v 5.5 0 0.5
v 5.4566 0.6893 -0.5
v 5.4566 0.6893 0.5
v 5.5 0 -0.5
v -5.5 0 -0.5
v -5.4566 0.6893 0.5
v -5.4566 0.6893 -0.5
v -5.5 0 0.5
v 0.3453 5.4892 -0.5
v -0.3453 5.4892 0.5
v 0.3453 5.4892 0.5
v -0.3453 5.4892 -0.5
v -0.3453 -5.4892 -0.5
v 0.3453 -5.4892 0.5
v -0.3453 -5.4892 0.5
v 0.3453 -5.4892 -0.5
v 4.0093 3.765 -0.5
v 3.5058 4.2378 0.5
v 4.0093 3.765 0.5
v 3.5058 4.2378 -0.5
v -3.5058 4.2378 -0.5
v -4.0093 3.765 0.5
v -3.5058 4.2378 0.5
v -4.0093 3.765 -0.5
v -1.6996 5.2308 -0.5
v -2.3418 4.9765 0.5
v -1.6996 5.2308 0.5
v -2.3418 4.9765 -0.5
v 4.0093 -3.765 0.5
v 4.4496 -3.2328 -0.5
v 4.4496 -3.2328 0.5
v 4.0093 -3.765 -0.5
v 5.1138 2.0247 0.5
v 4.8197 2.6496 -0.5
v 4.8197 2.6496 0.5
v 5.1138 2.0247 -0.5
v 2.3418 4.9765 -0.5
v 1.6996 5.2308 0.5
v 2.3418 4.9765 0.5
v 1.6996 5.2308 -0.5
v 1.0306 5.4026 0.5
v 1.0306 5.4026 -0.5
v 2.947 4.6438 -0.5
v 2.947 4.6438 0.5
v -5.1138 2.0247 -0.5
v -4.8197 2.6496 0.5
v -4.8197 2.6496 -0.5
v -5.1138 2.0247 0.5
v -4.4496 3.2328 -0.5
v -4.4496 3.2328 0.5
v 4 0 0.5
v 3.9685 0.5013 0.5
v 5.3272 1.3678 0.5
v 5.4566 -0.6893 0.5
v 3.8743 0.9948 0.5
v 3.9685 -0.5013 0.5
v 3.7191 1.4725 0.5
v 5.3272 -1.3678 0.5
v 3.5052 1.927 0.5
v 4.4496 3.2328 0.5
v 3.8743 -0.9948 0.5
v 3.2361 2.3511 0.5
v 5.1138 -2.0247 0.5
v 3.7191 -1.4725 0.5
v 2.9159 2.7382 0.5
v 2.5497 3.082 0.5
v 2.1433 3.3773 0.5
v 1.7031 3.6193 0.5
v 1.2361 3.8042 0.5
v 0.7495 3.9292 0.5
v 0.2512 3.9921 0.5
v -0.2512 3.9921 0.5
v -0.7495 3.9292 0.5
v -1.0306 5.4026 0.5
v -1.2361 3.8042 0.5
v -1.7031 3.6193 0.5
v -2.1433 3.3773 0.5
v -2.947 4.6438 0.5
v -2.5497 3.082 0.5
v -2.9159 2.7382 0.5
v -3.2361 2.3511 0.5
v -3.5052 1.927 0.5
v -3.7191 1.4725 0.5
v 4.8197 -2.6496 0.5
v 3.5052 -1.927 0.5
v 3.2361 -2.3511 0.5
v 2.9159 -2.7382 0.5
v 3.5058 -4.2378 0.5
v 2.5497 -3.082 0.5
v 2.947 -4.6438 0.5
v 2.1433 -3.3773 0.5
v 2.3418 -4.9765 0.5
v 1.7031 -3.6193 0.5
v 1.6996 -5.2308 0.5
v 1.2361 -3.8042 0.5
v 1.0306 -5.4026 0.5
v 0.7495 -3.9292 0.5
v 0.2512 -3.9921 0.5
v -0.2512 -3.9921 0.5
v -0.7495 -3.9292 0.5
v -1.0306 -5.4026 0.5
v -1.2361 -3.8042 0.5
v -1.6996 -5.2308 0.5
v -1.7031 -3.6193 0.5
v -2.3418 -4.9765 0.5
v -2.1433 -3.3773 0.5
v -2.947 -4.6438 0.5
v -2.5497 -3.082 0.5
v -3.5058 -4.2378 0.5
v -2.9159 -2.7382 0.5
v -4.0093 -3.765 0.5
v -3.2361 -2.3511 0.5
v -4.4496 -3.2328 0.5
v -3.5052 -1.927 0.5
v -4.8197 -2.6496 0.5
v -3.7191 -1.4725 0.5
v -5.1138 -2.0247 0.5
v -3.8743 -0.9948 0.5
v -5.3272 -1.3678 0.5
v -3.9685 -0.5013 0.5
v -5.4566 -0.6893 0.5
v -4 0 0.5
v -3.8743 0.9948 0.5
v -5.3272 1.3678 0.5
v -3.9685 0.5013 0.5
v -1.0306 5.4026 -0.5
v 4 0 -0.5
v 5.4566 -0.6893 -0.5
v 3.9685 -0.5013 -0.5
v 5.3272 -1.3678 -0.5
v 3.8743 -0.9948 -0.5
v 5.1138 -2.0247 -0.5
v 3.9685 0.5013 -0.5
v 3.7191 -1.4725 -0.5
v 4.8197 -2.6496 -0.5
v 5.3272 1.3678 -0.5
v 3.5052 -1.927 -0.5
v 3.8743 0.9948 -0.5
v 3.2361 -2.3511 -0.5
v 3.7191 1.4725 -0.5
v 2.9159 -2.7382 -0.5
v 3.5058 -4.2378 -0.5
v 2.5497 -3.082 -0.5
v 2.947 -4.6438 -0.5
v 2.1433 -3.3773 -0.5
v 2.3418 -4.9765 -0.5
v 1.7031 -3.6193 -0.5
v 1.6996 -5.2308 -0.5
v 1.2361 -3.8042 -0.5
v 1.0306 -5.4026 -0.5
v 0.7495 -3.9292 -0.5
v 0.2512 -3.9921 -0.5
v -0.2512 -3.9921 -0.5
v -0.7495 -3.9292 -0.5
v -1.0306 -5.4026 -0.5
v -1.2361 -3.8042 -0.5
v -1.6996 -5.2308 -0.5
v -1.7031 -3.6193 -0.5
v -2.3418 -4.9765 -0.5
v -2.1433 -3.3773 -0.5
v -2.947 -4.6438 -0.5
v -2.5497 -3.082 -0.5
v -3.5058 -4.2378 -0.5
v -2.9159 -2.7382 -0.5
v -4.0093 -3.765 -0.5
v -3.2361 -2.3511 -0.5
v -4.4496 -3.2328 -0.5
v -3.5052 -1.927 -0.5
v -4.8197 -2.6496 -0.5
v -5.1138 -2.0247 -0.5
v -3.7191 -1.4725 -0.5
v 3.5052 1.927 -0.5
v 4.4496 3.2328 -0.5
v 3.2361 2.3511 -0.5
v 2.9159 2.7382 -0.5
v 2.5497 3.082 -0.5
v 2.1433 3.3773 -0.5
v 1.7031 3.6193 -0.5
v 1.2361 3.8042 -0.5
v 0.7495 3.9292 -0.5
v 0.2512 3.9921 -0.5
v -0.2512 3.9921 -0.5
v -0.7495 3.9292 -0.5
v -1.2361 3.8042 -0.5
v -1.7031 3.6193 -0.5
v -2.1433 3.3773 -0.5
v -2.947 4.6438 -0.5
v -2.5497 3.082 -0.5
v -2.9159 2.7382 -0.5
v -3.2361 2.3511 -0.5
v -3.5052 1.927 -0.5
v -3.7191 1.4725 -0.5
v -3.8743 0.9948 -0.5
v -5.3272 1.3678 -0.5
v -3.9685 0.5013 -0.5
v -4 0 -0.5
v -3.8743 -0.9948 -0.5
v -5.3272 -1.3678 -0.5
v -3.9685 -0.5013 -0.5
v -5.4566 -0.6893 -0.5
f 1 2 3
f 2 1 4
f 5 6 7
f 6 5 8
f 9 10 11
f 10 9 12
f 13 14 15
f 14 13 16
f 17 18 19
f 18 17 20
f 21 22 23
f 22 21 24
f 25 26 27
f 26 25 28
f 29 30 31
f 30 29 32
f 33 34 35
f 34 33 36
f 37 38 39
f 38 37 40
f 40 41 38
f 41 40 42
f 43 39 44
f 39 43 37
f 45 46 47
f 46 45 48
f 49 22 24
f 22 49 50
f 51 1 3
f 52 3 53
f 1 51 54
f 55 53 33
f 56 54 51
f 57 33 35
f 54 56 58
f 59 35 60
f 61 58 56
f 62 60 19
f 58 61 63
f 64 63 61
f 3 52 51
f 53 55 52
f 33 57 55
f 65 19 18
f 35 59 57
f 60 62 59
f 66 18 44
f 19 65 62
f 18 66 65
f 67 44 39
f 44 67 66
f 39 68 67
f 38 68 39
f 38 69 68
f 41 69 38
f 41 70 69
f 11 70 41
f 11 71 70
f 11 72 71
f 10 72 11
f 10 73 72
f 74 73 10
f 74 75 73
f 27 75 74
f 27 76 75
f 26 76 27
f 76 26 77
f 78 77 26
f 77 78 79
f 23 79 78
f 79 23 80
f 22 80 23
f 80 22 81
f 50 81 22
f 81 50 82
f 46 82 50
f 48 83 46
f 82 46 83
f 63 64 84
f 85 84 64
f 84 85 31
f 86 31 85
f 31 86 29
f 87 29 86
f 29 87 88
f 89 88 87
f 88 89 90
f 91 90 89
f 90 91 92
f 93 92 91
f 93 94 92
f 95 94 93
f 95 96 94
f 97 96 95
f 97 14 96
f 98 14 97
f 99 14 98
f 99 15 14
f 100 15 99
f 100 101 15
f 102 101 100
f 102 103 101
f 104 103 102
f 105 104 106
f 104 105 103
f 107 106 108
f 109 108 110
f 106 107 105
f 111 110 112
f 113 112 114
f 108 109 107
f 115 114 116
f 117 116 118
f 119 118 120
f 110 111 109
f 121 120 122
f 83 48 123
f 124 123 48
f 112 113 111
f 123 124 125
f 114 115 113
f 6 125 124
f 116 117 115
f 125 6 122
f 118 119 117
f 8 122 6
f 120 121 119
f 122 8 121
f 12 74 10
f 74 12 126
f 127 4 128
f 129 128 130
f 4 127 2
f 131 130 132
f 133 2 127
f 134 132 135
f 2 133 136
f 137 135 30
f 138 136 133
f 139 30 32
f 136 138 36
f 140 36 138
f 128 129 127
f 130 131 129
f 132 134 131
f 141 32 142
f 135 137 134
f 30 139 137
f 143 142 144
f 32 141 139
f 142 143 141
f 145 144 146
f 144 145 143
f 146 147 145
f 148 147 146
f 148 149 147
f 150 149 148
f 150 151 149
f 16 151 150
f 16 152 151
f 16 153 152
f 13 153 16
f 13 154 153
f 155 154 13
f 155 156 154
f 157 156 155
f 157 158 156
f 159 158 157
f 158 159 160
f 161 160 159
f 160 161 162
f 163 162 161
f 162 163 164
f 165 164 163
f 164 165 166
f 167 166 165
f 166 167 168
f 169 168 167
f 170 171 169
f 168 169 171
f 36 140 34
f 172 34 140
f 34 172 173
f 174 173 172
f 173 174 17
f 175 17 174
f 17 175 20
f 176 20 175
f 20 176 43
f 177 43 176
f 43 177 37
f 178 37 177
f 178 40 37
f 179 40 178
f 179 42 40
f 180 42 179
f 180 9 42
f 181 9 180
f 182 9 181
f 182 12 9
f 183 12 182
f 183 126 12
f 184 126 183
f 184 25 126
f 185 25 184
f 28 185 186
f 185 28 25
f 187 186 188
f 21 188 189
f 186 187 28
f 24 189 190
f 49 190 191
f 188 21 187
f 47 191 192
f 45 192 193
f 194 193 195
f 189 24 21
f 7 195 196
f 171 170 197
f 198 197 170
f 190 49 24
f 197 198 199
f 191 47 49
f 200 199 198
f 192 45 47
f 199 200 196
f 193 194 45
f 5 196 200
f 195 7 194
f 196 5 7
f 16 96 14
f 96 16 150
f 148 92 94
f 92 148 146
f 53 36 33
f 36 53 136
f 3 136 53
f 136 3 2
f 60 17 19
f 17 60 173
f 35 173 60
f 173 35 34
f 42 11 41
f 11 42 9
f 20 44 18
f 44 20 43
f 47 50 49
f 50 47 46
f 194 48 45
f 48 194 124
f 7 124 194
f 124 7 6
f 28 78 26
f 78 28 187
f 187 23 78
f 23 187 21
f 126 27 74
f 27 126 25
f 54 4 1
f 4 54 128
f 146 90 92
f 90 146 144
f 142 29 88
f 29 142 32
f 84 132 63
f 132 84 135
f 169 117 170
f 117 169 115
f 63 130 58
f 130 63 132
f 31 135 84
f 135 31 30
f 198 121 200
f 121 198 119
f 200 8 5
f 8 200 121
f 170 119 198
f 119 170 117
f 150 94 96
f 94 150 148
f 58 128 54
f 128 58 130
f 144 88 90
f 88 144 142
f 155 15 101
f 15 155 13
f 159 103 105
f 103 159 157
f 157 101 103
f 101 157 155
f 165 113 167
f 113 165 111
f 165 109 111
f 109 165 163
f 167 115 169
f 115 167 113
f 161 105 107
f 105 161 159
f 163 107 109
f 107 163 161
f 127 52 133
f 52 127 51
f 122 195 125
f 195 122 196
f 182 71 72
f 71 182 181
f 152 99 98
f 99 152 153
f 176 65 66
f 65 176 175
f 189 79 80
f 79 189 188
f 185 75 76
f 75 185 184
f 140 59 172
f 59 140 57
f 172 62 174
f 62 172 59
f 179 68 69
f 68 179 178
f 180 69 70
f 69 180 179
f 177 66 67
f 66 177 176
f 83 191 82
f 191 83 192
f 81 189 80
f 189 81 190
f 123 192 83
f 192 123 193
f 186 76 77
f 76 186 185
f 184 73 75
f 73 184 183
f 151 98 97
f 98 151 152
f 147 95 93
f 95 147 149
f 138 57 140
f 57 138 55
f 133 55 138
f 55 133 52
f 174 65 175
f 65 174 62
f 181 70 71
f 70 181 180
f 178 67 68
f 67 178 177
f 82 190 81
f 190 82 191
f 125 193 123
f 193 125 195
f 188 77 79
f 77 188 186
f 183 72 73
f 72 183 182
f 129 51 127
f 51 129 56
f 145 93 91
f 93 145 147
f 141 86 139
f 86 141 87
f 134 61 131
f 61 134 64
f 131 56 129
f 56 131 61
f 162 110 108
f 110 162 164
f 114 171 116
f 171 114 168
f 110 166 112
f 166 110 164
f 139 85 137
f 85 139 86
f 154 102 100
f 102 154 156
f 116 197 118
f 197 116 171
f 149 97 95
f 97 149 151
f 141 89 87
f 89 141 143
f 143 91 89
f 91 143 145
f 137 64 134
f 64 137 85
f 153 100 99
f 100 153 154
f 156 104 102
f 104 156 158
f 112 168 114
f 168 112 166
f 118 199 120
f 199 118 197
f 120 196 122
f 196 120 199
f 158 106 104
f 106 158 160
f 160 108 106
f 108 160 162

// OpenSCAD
$fn = 50;


difference() {
	union() {
		translate(v = [0, 0, -0.5000000000]) {
			cylinder(h = 1, r = 5.5000000000);
		}
	}
	union() {
		translate(v = [0, 0, -100.0000000000]) {
			cylinder(h = 200, r = 4);
		}
	}
}
